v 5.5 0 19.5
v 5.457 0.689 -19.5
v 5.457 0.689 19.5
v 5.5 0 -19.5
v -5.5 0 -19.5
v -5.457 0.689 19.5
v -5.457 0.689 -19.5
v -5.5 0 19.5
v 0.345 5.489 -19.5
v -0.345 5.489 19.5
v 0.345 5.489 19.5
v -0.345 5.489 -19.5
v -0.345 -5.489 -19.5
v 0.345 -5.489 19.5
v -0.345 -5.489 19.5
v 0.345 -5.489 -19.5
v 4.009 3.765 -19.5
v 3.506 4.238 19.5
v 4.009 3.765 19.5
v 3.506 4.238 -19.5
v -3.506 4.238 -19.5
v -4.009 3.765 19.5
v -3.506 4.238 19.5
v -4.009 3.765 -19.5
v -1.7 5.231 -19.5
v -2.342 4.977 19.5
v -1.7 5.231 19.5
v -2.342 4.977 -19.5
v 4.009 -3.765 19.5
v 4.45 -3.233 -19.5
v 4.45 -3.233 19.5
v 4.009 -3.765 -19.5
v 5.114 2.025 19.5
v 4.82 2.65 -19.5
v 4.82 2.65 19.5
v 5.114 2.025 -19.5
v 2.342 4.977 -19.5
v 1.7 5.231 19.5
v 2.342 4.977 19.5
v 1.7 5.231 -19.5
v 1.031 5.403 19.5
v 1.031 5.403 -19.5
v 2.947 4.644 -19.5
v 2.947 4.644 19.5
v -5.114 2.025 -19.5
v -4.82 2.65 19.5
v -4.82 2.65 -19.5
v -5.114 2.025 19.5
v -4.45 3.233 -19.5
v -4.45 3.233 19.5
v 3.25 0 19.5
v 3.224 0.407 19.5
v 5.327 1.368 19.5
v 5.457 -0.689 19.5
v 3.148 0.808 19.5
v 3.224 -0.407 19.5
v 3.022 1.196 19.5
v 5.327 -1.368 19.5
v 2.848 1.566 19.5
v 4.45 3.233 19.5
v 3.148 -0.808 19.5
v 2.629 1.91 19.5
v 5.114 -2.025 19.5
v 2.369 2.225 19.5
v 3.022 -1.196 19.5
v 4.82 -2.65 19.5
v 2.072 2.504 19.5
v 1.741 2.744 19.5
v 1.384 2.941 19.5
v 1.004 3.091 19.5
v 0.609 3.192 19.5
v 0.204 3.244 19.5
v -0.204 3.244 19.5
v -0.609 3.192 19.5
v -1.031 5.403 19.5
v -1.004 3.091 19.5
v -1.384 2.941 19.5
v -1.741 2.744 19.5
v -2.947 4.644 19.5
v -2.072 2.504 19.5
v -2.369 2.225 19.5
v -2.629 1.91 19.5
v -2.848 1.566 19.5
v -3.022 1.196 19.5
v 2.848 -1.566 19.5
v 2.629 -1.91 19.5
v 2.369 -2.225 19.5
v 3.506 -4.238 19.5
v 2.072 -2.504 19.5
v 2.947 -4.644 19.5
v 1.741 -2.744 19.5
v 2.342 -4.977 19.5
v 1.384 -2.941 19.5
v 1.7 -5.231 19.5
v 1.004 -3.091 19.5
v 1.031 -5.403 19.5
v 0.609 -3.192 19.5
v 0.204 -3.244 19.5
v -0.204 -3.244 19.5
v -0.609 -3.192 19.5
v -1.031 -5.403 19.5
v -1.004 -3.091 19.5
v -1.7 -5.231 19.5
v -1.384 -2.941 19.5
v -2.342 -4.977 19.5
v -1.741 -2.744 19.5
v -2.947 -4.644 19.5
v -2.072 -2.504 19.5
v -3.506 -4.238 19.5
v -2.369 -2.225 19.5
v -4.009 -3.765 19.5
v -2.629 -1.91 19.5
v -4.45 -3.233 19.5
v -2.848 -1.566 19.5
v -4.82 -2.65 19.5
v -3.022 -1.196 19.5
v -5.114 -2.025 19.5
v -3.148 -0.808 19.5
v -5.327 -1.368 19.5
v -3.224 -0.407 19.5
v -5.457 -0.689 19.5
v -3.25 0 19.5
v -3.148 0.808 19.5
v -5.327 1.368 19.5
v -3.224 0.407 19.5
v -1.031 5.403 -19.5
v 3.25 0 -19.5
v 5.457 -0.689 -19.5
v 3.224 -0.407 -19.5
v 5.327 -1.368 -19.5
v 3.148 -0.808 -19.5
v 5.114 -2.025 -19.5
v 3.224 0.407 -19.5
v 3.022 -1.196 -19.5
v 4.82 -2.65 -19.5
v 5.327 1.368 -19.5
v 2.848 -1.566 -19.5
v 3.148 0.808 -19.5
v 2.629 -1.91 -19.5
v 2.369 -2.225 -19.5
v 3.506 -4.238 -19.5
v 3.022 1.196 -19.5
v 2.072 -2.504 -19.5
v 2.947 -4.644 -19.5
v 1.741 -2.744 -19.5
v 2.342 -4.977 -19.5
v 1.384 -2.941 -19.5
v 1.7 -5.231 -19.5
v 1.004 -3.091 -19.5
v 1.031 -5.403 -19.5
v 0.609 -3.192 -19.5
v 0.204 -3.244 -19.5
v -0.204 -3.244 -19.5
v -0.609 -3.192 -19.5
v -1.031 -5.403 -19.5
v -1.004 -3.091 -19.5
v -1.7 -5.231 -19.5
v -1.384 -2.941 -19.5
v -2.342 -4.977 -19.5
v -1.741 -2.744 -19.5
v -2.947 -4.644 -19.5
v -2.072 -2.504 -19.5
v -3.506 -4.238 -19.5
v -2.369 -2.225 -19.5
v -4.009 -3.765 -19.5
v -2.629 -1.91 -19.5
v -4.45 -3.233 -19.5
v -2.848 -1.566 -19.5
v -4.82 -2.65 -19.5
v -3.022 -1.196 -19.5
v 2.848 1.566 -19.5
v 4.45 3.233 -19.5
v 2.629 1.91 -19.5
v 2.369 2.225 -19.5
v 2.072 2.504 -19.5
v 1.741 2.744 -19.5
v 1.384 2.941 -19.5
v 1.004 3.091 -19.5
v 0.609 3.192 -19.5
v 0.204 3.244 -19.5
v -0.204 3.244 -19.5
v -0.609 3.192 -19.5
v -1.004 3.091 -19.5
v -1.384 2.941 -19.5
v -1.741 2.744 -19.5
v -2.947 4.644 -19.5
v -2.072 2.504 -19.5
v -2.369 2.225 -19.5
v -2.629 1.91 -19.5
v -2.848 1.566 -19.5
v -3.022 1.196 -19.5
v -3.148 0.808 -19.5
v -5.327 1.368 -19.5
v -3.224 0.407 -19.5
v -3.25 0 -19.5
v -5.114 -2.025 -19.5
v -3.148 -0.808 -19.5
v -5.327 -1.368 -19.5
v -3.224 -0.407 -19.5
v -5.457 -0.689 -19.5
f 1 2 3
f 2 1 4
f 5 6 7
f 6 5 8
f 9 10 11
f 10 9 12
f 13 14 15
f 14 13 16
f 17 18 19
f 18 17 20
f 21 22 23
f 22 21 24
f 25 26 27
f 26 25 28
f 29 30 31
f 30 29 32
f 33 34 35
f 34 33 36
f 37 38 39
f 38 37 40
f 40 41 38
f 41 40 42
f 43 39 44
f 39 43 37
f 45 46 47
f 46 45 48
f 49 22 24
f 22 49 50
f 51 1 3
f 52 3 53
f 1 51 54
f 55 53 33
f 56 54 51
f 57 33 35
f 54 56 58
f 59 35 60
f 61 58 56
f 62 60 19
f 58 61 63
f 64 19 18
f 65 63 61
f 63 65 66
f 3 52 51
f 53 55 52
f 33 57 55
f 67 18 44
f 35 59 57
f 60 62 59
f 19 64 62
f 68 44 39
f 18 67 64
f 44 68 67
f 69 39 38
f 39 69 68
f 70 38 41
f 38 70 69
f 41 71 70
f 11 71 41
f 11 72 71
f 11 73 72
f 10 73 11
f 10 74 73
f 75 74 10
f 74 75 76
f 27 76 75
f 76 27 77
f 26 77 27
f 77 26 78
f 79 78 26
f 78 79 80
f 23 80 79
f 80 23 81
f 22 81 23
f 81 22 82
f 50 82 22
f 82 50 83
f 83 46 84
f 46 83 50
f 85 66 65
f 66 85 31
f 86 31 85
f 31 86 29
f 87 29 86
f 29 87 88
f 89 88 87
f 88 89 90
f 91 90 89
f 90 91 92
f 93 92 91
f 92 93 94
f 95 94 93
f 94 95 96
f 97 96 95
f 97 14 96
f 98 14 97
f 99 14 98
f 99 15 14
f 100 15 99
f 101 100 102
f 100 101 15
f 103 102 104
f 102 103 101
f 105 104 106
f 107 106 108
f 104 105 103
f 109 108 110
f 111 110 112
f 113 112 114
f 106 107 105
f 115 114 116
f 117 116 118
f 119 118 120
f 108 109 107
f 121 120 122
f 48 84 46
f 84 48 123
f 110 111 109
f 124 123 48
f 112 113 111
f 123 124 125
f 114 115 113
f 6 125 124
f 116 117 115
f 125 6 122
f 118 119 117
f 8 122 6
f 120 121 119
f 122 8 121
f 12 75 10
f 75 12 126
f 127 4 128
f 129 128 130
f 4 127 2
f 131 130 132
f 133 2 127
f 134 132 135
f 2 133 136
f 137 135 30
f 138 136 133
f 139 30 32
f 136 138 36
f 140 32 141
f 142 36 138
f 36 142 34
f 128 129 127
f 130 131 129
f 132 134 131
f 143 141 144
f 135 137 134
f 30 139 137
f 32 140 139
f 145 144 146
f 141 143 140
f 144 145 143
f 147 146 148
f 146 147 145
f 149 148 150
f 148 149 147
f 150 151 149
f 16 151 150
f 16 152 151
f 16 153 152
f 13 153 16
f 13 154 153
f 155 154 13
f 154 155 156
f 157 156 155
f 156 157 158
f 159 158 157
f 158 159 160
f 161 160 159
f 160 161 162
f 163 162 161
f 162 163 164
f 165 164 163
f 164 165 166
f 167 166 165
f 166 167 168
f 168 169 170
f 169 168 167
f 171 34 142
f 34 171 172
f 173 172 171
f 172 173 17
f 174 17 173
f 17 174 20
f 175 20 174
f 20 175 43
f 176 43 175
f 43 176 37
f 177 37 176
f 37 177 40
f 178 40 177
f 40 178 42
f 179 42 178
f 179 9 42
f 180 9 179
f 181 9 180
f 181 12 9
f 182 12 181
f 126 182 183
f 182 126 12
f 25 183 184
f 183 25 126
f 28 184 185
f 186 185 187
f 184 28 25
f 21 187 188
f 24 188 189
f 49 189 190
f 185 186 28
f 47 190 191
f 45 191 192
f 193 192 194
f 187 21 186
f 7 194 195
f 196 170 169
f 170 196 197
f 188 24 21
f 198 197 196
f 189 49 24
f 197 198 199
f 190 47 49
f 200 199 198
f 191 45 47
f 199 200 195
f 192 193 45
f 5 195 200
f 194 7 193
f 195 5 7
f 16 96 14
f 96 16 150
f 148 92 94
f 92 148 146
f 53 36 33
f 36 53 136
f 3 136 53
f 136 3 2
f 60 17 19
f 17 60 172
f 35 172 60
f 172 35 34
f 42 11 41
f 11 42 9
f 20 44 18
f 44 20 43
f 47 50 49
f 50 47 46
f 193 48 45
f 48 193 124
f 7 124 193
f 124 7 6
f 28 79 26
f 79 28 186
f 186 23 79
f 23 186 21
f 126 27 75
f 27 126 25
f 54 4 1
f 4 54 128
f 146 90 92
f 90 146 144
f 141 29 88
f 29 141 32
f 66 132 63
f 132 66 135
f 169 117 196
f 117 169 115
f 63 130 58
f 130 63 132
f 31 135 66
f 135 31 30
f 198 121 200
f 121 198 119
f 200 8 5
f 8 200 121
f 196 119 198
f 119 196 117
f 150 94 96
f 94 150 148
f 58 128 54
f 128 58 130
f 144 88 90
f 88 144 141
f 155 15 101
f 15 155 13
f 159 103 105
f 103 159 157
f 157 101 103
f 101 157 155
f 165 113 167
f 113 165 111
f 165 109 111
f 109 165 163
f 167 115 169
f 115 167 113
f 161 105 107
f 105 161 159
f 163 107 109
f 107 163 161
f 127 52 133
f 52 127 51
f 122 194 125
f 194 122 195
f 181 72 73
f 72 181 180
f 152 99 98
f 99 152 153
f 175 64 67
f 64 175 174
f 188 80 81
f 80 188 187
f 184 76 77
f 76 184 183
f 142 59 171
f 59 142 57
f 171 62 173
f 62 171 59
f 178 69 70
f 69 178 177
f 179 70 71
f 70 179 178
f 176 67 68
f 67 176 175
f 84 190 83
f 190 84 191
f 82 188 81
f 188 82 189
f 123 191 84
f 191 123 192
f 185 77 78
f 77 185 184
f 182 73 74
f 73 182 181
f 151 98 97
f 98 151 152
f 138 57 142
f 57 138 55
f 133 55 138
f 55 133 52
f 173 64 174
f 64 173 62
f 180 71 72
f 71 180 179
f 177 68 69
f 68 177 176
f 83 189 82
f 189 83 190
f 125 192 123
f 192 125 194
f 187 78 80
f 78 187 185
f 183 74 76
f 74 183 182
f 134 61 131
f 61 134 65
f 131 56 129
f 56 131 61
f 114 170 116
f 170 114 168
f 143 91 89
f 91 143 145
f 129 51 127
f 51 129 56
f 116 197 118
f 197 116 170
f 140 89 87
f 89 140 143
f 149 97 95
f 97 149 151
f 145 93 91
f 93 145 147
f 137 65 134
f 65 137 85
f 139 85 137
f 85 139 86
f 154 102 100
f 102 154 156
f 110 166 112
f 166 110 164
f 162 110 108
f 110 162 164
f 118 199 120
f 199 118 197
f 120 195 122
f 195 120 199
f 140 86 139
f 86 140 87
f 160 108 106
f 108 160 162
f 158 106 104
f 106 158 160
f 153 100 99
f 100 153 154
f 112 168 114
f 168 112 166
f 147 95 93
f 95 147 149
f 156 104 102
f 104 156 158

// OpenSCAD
$fn = 50;


difference() {
	union() {
		translate(v = [0, 0, -19.5000000000]) {
			cylinder(h = 39, r = 5.5000000000);
		}
	}
	union() {
		translate(v = [0, 0, -100.0000000000]) {
			cylinder(h = 200, r = 3.2500000000);
		}
	}
}
